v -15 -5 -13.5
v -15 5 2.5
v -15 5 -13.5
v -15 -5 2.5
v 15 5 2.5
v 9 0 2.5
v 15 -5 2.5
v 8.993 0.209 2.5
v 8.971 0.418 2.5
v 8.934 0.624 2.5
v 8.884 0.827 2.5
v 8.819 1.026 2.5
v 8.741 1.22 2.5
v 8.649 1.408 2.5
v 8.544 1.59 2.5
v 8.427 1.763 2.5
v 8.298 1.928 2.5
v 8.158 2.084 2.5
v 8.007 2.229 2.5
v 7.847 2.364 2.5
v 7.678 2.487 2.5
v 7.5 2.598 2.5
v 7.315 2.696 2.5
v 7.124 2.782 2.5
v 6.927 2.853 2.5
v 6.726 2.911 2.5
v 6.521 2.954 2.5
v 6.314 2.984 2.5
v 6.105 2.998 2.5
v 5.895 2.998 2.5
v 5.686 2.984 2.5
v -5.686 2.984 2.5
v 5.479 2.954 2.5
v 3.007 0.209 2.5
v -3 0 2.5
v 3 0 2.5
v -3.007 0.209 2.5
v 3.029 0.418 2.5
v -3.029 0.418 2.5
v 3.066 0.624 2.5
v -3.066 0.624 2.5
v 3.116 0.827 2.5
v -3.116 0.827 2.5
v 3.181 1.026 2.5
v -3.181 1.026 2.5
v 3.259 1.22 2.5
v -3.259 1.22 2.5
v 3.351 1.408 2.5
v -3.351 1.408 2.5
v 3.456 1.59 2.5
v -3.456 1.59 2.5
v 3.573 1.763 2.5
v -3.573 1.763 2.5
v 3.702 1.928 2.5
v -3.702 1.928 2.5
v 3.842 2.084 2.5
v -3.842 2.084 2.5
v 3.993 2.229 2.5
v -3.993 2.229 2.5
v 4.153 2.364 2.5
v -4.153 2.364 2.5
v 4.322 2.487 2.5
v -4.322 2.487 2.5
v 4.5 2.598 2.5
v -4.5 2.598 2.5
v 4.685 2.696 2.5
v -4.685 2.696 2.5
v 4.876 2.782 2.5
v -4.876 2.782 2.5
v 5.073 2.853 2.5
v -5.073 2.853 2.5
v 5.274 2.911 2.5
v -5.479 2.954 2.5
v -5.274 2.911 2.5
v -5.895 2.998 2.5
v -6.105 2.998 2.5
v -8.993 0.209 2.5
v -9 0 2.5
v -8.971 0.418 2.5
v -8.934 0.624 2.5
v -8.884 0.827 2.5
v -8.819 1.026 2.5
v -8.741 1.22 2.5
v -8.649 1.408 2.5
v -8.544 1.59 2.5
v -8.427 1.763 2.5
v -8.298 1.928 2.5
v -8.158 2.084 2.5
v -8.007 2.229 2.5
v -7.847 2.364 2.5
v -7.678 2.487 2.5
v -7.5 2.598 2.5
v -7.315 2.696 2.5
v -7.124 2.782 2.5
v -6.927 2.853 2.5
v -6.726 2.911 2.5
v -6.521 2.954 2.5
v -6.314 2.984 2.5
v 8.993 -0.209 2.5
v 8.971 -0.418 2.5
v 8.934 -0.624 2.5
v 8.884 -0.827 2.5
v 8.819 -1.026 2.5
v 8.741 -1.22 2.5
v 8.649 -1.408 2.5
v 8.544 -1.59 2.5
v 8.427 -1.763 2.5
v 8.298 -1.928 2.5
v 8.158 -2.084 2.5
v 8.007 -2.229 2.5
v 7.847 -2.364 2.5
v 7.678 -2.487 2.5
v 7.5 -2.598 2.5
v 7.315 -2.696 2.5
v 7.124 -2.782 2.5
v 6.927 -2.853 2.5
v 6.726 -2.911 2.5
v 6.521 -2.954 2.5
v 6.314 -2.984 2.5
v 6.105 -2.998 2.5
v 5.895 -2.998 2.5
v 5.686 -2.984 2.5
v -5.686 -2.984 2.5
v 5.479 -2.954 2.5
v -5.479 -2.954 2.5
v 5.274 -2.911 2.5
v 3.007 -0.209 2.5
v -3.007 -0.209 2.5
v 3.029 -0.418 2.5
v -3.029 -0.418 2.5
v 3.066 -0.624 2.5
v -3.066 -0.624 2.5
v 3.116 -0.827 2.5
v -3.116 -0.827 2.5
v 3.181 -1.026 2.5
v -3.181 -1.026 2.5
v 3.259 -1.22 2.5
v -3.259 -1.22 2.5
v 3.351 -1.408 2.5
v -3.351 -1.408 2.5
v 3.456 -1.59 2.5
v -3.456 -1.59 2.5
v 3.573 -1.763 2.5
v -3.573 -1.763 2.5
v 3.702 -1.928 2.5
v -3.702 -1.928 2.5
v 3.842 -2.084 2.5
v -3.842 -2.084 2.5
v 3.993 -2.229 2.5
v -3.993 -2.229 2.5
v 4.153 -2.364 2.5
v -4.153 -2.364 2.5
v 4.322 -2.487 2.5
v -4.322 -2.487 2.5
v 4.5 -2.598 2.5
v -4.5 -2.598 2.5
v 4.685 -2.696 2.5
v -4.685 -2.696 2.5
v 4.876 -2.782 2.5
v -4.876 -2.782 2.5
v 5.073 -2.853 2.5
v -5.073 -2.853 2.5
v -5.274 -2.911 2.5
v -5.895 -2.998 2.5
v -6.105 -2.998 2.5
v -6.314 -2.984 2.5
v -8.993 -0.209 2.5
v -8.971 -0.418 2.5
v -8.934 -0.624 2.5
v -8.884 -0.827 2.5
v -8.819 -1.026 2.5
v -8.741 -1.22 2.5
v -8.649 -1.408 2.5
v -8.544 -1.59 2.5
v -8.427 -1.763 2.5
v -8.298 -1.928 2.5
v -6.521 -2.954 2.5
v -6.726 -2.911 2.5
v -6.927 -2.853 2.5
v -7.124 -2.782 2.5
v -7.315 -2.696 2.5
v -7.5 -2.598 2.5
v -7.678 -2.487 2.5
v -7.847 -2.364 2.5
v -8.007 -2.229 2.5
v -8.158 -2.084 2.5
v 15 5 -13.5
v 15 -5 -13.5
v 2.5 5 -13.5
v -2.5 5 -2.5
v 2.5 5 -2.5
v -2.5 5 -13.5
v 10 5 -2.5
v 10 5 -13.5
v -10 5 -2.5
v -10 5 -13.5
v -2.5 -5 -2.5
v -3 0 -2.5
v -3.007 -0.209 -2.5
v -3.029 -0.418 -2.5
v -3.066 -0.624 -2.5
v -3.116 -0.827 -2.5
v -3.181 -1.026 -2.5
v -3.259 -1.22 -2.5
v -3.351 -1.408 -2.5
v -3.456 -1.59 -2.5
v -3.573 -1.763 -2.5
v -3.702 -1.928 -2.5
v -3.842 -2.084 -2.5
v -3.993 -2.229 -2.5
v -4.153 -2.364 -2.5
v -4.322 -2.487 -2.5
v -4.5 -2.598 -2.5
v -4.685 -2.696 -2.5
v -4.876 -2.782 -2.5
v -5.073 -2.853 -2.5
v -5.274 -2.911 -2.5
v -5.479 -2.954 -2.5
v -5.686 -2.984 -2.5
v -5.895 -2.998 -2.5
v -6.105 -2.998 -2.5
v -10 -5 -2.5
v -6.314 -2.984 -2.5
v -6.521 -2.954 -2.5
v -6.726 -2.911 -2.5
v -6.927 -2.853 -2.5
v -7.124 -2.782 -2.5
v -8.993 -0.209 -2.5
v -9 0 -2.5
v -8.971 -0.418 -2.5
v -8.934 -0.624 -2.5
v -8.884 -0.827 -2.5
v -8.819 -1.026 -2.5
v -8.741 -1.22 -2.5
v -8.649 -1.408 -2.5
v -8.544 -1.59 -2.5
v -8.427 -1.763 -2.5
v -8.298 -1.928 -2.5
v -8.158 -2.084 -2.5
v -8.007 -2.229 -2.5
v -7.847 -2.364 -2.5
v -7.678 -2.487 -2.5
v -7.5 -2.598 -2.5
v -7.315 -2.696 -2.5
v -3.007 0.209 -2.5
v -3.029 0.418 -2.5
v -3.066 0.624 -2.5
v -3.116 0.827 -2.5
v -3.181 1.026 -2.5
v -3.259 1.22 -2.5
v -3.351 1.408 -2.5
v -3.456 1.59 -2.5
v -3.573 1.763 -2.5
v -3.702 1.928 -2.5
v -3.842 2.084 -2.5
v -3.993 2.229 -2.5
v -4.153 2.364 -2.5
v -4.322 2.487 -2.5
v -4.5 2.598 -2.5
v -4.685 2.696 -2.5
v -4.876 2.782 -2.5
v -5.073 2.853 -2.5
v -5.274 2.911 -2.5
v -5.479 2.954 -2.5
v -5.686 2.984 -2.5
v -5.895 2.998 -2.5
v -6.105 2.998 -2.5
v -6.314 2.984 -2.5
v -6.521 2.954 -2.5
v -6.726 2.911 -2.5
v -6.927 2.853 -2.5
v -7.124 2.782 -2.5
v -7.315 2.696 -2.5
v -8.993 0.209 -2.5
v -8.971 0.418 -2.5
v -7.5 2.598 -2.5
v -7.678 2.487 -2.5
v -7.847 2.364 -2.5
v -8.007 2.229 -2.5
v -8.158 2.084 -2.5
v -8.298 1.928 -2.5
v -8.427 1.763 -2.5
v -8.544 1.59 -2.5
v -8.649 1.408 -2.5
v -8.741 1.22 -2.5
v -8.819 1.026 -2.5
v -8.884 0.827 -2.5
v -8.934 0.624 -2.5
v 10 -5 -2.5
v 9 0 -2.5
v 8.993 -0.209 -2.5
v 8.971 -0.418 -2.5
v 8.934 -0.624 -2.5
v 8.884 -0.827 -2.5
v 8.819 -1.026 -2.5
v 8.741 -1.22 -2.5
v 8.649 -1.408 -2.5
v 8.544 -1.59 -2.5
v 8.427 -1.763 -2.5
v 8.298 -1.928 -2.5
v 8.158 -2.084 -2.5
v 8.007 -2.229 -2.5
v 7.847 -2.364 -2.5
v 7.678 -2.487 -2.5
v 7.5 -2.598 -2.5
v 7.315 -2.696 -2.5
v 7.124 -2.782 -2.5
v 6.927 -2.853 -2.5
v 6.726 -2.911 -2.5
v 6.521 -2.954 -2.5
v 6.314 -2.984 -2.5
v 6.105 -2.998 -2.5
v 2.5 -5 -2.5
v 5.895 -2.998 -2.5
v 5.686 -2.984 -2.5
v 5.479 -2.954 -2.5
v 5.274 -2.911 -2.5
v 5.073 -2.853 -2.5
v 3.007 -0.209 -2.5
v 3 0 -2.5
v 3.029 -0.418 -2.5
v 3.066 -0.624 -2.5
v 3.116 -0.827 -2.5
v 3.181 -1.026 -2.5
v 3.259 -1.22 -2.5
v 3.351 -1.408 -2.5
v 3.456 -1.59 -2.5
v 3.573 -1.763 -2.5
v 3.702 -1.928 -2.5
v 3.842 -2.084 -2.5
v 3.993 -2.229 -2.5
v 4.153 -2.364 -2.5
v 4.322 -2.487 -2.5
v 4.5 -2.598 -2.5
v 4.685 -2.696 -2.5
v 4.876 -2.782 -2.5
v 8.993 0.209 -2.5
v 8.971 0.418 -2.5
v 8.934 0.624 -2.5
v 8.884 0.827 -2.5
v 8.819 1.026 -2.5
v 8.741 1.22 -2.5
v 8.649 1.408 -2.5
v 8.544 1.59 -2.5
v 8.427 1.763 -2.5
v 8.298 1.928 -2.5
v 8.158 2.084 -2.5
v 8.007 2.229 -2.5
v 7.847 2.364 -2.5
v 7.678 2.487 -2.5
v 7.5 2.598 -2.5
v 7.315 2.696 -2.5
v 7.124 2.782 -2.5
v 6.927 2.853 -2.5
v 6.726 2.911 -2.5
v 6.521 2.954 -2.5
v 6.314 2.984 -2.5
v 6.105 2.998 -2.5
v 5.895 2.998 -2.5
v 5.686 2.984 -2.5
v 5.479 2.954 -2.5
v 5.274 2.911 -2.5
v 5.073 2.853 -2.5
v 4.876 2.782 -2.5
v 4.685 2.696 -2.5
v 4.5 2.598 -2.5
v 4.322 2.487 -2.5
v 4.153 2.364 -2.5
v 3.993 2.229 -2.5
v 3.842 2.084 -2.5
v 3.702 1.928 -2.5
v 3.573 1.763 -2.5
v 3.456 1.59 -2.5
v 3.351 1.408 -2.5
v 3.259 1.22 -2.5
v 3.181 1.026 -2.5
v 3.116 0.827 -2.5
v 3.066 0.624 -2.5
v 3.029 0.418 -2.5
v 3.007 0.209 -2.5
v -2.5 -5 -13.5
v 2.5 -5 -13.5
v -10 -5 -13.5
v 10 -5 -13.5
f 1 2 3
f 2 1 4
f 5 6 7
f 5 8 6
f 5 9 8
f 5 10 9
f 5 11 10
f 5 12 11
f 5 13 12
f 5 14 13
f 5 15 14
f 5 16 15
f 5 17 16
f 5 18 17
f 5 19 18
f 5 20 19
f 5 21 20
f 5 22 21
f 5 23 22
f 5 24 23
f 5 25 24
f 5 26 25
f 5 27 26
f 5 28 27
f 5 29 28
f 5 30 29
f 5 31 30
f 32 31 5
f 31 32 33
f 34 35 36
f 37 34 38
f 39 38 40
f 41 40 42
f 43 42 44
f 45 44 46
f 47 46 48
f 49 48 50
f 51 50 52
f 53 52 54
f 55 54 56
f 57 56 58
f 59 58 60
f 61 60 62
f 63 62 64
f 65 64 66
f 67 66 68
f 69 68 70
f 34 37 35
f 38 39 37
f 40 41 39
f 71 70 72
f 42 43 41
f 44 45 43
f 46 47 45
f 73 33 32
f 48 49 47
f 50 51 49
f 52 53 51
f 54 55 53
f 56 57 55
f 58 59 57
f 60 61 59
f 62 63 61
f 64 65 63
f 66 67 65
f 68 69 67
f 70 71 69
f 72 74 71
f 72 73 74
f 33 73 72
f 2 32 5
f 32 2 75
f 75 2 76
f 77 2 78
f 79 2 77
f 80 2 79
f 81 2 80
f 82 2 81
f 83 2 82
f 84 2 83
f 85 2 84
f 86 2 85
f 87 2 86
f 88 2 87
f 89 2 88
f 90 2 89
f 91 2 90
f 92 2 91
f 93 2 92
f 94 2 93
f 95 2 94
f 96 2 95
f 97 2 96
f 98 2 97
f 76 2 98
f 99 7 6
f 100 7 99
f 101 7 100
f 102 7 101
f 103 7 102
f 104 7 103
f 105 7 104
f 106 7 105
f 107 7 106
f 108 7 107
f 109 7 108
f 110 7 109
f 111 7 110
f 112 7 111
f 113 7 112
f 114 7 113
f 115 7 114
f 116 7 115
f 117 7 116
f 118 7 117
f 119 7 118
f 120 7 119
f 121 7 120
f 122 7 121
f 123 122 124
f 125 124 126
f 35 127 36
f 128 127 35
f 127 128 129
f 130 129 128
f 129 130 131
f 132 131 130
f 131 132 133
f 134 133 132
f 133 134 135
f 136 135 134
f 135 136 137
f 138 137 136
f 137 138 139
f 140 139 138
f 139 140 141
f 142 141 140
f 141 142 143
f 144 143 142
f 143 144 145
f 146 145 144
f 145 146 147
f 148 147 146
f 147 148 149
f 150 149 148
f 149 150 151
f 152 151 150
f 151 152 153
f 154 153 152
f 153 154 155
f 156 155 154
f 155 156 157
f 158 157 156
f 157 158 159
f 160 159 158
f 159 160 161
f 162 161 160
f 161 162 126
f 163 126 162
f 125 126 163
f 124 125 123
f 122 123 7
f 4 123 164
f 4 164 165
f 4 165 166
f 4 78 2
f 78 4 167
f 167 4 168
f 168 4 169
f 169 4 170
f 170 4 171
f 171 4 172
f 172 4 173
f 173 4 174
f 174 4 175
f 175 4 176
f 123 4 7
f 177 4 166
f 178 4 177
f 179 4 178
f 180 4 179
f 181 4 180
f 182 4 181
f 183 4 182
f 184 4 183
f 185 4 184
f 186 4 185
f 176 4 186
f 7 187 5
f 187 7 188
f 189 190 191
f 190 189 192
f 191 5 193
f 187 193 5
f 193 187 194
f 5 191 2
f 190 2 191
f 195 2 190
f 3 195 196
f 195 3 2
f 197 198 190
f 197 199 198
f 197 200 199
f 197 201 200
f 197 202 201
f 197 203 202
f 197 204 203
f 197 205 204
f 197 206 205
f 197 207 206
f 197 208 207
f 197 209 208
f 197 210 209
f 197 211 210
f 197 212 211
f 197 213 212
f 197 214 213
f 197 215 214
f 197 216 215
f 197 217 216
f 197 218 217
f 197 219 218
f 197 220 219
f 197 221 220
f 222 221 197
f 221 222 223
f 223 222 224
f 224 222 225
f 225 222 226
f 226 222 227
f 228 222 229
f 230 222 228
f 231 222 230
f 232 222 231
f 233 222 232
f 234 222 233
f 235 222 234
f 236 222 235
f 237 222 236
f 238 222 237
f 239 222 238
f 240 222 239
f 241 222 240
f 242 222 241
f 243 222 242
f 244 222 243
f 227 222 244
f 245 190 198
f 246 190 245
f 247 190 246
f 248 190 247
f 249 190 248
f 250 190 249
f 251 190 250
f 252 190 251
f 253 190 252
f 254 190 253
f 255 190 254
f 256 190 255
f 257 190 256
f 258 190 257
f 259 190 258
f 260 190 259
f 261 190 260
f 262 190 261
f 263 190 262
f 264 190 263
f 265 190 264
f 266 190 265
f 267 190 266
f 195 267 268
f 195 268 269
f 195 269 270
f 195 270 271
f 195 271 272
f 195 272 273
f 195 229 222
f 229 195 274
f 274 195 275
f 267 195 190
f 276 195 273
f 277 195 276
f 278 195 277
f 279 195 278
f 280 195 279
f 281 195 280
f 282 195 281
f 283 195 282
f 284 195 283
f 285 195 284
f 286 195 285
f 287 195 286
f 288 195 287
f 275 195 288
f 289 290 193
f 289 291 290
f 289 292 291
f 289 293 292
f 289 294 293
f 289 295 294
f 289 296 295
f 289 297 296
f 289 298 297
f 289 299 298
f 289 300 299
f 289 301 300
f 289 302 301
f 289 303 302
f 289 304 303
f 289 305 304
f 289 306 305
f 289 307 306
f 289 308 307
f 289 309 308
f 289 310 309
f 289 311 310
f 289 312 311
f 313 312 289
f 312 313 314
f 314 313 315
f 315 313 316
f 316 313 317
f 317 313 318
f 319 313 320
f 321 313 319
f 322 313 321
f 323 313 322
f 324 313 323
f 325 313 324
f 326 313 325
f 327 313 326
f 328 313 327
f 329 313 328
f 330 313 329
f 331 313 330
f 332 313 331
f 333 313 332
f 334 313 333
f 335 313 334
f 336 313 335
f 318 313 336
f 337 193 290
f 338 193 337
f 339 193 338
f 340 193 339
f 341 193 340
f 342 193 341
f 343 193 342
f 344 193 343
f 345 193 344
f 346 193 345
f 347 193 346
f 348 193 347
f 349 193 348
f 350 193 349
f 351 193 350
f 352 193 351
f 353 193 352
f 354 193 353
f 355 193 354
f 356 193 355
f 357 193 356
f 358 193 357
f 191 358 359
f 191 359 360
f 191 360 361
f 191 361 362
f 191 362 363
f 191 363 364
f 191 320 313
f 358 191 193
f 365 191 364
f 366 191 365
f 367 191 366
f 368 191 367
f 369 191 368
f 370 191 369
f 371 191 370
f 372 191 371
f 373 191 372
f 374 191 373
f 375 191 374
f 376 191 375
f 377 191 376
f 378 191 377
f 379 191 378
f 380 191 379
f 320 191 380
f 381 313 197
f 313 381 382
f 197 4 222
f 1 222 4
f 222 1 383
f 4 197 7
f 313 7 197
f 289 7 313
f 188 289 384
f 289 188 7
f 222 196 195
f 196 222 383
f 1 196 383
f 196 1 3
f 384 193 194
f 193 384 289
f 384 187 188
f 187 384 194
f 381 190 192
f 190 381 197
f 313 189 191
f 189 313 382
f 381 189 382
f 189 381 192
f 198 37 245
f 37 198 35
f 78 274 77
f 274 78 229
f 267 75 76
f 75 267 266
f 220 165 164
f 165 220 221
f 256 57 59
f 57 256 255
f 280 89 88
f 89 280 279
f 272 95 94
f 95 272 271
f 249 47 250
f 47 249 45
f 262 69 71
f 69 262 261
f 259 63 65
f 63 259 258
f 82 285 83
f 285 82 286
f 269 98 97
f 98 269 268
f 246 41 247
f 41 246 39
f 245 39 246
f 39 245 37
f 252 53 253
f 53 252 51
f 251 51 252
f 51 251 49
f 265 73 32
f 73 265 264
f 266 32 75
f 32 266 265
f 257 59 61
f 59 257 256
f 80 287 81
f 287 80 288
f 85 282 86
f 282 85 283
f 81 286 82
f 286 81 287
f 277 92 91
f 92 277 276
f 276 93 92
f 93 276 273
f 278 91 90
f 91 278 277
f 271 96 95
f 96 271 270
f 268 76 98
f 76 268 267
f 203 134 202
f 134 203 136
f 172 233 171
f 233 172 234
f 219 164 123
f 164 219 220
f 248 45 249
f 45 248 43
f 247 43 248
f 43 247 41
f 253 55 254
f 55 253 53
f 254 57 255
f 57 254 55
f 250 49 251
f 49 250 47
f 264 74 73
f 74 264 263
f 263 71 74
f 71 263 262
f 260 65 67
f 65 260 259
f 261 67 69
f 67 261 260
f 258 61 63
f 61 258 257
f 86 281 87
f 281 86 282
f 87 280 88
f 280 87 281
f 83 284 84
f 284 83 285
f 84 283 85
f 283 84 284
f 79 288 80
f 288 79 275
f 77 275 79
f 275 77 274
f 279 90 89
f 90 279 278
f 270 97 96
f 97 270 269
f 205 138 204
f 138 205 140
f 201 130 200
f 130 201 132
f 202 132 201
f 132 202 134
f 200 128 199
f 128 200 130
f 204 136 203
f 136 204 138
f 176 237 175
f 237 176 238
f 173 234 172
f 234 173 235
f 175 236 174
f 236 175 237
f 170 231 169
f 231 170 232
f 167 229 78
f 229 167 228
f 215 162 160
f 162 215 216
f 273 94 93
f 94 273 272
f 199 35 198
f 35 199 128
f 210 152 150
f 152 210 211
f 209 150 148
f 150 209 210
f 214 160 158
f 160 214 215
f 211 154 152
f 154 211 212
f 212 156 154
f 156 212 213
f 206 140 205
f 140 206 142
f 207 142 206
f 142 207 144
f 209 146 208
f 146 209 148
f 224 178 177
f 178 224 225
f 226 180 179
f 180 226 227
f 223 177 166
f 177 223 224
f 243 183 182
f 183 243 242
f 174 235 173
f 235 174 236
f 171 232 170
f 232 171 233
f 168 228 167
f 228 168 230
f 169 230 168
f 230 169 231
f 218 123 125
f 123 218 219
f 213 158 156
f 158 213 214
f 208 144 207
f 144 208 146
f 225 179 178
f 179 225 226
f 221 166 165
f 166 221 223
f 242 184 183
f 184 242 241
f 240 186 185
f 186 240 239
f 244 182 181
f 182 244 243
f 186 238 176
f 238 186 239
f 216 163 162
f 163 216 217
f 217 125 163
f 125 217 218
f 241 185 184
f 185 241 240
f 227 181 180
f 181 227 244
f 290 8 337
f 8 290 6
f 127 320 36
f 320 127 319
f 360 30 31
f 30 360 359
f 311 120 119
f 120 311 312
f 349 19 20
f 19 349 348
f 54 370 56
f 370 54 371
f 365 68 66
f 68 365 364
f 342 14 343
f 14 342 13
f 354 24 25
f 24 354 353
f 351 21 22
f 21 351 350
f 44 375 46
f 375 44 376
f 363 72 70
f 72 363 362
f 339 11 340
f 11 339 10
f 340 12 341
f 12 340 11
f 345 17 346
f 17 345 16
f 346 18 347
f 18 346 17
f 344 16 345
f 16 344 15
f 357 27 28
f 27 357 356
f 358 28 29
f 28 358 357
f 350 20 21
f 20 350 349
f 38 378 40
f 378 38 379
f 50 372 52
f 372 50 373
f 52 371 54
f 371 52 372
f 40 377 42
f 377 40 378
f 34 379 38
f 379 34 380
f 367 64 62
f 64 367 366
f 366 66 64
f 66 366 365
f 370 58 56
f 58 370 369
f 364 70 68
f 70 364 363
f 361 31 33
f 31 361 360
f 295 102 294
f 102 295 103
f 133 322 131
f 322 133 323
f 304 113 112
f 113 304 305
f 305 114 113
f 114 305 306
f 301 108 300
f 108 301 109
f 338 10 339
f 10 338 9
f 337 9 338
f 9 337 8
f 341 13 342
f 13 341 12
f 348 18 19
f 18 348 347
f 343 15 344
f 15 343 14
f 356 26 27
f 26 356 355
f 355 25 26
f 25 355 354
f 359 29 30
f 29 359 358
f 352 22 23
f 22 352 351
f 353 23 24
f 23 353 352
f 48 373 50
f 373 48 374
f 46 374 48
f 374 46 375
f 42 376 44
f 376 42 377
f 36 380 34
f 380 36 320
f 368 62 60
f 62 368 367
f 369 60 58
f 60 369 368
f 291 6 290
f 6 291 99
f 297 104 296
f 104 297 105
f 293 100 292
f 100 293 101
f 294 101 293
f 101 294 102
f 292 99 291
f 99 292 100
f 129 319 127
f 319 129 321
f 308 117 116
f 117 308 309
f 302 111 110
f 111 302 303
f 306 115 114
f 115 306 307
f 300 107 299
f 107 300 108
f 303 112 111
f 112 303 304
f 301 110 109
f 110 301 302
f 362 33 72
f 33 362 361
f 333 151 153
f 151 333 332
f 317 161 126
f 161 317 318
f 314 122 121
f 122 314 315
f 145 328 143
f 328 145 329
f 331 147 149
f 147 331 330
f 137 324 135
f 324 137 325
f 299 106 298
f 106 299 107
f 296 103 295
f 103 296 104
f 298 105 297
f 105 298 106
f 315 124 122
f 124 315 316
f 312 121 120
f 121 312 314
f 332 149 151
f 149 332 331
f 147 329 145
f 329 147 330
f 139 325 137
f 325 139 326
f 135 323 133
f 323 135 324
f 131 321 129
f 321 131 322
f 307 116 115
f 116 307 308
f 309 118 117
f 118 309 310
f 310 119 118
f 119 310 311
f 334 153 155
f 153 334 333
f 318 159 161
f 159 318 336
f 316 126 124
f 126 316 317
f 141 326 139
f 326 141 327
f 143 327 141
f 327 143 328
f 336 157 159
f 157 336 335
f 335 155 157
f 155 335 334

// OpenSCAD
tgtDetail = 90;
ledRadius = 6;
module base() {
    cube([30,10,5], center=true);
    translate([-12.5,0,-8])
        cube([5,10,11],center=true);
    translate([12.5,0,-8])
        cube([5,10,11],center=true);
    translate([0,0,-8])
        cube([5,10,11],center=true);
}
difference() {
    base();
    translate([-6,0,0]) cylinder(d=ledRadius, h=6, $fn = tgtDetail, center=true);
    translate([6,0,0]) cylinder(d=ledRadius, h=6, $fn = tgtDetail, center=true);
    
}
